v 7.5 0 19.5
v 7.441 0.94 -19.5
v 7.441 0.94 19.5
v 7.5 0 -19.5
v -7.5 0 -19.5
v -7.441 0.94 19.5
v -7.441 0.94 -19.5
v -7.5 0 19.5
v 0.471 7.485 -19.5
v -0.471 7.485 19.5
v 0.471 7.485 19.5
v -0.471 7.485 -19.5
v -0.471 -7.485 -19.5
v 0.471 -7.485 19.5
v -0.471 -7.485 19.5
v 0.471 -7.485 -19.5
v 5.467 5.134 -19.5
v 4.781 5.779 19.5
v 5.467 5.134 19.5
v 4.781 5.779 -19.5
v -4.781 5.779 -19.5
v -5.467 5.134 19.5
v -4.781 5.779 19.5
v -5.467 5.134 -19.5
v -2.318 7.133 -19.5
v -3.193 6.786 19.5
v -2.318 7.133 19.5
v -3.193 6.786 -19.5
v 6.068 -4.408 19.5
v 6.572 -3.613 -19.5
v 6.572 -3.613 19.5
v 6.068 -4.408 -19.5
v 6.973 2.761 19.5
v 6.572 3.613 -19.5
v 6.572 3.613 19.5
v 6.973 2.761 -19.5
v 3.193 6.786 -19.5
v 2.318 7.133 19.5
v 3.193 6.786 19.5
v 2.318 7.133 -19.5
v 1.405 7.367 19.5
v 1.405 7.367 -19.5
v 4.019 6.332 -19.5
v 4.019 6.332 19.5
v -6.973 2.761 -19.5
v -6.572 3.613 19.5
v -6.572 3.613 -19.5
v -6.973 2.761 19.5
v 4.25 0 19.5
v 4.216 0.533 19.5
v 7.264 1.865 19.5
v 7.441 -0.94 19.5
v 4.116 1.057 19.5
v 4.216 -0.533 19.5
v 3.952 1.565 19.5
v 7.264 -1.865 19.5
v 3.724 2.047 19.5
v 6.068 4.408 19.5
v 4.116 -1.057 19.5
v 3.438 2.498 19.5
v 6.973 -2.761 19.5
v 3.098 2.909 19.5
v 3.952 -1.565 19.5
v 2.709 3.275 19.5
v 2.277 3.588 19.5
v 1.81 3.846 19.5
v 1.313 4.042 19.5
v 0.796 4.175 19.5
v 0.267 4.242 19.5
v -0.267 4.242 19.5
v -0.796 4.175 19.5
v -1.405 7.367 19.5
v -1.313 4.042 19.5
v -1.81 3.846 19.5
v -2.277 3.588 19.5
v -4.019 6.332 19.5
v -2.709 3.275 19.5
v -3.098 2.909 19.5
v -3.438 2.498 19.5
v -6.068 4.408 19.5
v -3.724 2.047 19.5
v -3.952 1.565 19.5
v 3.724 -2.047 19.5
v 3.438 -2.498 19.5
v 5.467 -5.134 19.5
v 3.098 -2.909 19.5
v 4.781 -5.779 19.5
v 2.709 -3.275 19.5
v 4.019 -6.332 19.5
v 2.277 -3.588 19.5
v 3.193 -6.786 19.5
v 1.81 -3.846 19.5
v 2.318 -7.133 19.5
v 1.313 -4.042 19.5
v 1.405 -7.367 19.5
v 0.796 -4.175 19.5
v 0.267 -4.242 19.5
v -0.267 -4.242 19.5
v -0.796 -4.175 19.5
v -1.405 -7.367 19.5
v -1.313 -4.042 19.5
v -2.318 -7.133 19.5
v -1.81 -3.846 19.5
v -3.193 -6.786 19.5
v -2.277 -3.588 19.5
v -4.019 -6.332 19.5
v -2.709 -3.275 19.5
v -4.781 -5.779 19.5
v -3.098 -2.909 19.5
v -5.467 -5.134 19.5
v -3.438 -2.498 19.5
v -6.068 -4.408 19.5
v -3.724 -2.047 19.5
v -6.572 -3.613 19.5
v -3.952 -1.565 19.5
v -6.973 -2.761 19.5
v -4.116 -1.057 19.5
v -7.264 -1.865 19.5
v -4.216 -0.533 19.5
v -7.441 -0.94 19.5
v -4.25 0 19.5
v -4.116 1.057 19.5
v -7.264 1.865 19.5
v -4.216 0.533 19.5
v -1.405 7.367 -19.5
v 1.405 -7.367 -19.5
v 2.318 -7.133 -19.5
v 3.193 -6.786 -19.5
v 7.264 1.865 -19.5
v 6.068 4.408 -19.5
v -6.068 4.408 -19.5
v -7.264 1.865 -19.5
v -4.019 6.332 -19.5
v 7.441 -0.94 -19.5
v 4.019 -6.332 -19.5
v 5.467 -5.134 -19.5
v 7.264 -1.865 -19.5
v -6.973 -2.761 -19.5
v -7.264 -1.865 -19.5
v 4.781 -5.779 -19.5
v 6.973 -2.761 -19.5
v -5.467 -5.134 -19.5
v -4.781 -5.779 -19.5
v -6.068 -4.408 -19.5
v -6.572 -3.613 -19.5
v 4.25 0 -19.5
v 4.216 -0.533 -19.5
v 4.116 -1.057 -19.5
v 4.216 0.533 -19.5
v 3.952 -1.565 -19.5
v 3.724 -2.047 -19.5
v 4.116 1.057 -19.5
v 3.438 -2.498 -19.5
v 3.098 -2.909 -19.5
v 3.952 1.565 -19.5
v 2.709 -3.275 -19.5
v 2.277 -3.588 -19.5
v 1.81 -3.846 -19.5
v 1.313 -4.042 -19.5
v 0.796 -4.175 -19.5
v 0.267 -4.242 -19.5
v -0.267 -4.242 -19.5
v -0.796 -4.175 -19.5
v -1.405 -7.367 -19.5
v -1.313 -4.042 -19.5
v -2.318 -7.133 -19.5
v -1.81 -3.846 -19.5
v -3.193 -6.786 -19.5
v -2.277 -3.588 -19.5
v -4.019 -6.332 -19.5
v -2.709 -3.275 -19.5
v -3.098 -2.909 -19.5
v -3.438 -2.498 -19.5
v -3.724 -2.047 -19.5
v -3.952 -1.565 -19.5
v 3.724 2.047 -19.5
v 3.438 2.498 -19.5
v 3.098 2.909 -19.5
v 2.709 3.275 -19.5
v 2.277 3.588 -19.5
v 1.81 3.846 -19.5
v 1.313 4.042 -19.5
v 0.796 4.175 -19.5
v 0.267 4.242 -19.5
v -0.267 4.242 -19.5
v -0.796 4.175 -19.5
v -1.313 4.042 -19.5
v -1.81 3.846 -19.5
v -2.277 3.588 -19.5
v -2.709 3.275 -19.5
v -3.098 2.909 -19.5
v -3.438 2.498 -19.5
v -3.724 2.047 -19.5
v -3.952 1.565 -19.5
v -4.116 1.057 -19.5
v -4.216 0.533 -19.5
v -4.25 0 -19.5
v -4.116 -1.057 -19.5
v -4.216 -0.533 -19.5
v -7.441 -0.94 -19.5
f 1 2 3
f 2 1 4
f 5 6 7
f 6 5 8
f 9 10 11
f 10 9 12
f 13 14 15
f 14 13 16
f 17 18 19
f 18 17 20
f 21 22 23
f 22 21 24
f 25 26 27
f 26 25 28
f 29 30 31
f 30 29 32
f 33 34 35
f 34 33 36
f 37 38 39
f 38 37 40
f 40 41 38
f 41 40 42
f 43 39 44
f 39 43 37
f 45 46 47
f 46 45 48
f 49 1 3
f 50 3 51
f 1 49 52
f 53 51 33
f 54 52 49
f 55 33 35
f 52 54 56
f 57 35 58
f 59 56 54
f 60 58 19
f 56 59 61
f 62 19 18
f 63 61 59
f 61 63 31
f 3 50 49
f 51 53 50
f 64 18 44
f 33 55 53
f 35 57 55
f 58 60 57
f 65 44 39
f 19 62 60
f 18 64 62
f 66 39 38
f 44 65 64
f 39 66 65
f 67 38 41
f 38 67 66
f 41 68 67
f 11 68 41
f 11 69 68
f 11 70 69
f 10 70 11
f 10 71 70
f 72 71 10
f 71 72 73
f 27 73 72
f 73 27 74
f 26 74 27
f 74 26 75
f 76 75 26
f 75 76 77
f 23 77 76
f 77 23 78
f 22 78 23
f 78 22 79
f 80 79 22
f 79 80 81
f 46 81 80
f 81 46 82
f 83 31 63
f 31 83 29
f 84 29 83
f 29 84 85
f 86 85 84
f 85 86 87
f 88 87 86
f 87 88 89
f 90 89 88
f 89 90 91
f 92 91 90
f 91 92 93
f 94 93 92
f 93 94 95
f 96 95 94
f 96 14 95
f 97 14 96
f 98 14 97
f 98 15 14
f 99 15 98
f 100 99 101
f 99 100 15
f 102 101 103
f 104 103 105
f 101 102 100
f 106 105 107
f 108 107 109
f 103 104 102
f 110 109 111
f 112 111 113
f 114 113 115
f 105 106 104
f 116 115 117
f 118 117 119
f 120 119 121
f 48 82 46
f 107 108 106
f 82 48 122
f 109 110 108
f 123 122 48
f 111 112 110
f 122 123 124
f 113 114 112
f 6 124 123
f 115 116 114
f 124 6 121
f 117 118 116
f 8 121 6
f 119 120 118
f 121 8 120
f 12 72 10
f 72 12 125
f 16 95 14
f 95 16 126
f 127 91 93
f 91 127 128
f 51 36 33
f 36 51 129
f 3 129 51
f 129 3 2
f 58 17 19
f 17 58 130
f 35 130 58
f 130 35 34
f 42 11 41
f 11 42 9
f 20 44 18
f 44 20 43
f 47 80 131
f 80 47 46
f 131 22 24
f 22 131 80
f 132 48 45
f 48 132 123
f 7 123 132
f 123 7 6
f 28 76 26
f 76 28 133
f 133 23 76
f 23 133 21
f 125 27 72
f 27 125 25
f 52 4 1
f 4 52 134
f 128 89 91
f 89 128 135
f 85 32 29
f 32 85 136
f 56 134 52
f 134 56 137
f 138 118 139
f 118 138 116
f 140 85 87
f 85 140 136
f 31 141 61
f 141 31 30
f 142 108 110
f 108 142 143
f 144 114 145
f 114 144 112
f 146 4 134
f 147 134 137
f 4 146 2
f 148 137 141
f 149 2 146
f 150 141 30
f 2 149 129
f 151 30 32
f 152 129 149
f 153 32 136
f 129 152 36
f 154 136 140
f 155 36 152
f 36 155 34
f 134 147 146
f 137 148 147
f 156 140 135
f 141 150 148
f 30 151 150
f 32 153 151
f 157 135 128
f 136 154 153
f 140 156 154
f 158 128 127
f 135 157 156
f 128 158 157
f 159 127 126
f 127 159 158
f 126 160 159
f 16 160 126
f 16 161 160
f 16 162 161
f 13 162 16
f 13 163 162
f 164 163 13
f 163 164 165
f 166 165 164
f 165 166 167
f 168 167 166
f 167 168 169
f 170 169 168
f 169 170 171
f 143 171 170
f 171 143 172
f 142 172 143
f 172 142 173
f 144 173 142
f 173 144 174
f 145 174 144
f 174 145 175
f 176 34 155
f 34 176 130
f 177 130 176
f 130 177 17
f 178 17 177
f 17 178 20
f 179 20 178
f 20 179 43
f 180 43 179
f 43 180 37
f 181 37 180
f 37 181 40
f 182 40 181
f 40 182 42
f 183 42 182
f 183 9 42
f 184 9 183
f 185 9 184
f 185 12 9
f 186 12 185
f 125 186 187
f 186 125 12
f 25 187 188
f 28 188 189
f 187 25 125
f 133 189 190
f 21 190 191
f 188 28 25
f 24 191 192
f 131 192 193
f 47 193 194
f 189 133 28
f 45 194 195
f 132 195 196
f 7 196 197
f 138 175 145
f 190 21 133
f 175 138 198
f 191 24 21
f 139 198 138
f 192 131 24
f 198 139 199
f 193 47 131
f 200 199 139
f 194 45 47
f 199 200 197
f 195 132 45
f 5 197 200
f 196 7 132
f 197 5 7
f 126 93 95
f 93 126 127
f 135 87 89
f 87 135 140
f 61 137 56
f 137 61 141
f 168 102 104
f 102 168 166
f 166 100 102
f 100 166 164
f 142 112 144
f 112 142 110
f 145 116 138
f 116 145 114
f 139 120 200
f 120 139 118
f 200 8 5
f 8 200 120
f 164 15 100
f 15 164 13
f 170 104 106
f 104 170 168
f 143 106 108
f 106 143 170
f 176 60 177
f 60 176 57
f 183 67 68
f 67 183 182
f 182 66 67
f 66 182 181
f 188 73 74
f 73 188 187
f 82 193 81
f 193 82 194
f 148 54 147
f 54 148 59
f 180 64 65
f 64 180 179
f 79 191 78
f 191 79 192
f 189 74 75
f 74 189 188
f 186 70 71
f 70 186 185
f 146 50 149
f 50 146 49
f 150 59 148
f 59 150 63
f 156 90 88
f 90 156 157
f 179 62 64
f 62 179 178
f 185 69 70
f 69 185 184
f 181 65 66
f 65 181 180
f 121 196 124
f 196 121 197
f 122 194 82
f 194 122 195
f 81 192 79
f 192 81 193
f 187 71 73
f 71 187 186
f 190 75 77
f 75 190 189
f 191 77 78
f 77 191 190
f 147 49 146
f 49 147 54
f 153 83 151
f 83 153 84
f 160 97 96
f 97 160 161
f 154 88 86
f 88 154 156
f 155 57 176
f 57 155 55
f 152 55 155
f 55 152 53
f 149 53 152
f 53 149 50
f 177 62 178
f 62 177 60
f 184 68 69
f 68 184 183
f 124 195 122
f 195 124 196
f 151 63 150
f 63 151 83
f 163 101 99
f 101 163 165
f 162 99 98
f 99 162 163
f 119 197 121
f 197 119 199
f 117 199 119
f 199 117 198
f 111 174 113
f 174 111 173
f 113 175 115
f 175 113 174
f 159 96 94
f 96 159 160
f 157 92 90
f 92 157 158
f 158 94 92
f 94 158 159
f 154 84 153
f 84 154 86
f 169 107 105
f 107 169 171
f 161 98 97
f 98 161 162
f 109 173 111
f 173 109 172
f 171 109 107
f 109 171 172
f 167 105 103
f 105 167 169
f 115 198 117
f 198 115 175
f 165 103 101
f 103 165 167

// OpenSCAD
$fn = 50;


difference() {
	union() {
		translate(v = [0, 0, -19.5000000000]) {
			cylinder(h = 39, r = 7.5000000000);
		}
	}
	union() {
		translate(v = [0, 0, -100.0000000000]) {
			cylinder(h = 200, r = 4.2500000000);
		}
	}
}
